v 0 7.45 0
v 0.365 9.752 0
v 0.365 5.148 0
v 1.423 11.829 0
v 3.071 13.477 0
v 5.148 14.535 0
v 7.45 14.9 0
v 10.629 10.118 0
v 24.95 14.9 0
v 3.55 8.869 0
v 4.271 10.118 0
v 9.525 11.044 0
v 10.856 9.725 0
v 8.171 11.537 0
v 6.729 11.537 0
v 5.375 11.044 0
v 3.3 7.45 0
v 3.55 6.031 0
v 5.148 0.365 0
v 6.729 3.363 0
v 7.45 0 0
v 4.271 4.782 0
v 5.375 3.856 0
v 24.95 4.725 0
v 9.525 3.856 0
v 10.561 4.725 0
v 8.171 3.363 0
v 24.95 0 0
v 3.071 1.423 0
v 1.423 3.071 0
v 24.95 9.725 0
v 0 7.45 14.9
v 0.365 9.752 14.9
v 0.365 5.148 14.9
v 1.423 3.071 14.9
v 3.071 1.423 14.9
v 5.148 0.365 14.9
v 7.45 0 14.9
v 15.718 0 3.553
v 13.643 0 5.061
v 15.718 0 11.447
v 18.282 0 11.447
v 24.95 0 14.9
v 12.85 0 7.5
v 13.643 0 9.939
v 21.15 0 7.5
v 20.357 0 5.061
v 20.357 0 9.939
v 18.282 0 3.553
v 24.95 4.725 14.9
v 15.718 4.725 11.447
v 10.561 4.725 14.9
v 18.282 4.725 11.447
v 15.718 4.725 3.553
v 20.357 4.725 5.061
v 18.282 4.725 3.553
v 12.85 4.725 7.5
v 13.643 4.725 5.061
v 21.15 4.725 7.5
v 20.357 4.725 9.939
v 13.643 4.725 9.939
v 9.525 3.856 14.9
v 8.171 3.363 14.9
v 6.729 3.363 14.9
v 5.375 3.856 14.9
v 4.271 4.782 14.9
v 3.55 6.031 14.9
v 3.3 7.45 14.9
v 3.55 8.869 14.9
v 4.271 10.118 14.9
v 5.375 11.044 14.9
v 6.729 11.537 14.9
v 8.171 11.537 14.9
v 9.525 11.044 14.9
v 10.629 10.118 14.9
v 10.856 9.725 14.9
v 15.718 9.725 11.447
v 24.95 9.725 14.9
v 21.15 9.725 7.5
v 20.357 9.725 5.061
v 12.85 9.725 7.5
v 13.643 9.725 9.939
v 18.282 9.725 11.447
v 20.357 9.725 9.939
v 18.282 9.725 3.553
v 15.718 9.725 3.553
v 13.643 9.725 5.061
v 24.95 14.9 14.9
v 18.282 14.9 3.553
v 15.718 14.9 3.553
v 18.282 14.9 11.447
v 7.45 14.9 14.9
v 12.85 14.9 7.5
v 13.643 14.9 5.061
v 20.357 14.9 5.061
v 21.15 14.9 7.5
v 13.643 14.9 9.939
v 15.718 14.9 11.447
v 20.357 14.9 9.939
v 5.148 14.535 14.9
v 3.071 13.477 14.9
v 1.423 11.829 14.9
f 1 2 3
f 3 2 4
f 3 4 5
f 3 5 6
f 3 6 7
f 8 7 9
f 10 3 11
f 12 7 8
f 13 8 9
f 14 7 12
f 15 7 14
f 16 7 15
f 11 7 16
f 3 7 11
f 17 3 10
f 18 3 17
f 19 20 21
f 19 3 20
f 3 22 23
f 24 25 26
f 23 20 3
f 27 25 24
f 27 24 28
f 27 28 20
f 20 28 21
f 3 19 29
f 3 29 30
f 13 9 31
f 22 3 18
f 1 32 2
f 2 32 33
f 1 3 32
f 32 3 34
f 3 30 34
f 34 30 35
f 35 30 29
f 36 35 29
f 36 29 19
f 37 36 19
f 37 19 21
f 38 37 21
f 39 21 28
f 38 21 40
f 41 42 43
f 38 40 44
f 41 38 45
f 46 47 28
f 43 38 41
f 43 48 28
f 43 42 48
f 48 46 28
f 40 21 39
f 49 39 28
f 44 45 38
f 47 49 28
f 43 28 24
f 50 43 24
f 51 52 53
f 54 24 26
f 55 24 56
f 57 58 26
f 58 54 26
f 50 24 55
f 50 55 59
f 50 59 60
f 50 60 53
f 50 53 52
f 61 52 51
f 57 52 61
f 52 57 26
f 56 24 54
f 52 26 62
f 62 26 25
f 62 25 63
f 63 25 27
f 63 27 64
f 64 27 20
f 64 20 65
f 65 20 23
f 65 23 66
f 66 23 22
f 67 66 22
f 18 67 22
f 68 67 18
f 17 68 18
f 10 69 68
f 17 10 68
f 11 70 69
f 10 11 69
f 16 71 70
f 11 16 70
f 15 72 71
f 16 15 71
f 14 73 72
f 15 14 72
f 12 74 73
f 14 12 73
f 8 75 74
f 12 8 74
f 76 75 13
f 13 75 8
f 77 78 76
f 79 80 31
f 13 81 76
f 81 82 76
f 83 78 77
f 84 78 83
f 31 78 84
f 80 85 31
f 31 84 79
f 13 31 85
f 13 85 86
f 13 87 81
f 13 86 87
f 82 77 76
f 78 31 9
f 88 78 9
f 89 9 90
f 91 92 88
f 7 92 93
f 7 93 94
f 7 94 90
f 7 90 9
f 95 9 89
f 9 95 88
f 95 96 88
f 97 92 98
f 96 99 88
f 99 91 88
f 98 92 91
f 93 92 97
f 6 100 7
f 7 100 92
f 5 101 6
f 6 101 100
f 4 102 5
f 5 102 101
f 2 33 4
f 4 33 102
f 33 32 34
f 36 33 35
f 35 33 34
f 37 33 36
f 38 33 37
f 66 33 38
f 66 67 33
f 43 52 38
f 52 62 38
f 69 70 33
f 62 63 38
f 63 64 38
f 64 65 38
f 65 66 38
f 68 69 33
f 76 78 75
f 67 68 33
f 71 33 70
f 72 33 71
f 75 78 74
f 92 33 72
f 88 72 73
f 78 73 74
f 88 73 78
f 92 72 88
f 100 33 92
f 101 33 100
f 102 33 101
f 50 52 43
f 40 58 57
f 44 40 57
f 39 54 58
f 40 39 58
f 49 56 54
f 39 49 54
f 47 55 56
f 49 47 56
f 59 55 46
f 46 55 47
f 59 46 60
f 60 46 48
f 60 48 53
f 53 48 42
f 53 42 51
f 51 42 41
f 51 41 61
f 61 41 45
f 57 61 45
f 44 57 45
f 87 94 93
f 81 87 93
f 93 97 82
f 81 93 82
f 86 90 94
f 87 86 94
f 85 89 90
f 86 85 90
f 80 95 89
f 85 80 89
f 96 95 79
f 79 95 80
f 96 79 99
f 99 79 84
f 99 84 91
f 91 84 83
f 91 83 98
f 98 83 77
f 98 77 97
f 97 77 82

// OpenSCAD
// file: configuration.scad
// PRUSA Mendel  
// Configuration file
// GNU GPL v2
// Josef Průša
// josefprusa@me.com
// prusadjs.cz
// http://www.reprap.org/wiki/Prusa_Mendel
// http://github.com/prusajr/PrusaMendel

// PLEASE SELECT ONE OF THE CONFIGURATIONS BELOW
// BY UN-COMMENTING IT

variant=0; //0 for metric
//variant=1; //1 for SAE
if(variant==0){
echo("variant: metric");
}else if(variant==1){
echo("variant: sae");
} else{
echo("WARNING: INVALID CONFIGURATION");
}


vars=[
//[m8_dia, m8_nut, m4_dia, m4_nut, m3_dia, m3_nut, bush_dia, mot_shaft, bush_rod, bush_outerdia, bush_length]
[8.3,16.4,4.3,9,3.3,7,11,5.3,8,16,11],//metric
[9,15.7,5.5,10.6,5.5,10.6,11.5,5.3,7.9375,16,11]//SAE
];

//BUSHING TYPE Can generate three versions
// 1 - regular old ones
// 2 - helical ones
// 3 - holders for brass or any other bought bushings
bushing_type = 2;

//Round corner diameter
round_corner_diameter = 8;

//X end parameters
axis_diameter_real = 4;
axis_diameter_larger = 4.2 ;
pressure_pad_height = 0.7;

//Thin wall size
layer_height = 0.4;
perimeter_width_over_thicknes = 1.6;
infill_widht_over_thickness = 1.55;
thin_wall = 2*(perimeter_width_over_thicknes*layer_height+infill_widht_over_thickness*layer_height);
if(thin_wall<2){
	echo("Check thin wall size, its below 2mm!");
}
echo(thin_wall);

//DO NOT TOUCH THIS SECTION!
m8_diameter = vars[variant][0];
m8_nut_diameter = vars[variant][1];
m4_diameter = vars[variant][2];
m4_nut_diameter = vars[variant][3];
m3_diameter = vars[variant][4];
m3_nut_diameter = vars[variant][5];
bushing_diameter = vars[variant][6];
motor_shaft=vars[variant][7];
bushing_rodsize = vars[variant][8];
bushing_outerDiameter = vars[variant][9];
bushing_lenght = vars[variant][10];


// MINI-HUXLEY VERSION (TODO, just place holder)
// include <configuration-huxley.scad>

// MEGA VERSION (TODO, just place holder)
// include <configuration-mega.scad>


// Some basic functions, probably should be somewhere else
module roundcorner(diameter){
	difference(){
		cube(size = [diameter,diameter,99], center = false);
		translate(v = [diameter, diameter, 0]) cylinder(h = 100, r=diameter, center=true);
	}
}
module polyhole(h, d) {
    n = max(round(2 * d),3);
    rotate([0,0,180])
        cylinder(h = h, r = (d / 2) / cos (180 / n), $fn = n);
}
// main file
// PRUSA Mendel  
// Bar clamp
// Used for joining 8mm rods
// GNU GPL v2
// Josef Průša
// josefprusa@me.com
// prusadjs.cz
// http://www.reprap.org/wiki/Prusa_Mendel
// http://github.com/prusajr/PrusaMendel

include <configuration.scad>

/**
 * @name Bar clamp
 * @category Printed
 * @using 2 m8nut
 * @using 2 m8washer
 */ 

module barclamp(){
outer_diameter = m8_diameter/2+3.3;

difference(){
	union(){
		
		translate([outer_diameter, outer_diameter, 0])cylinder(h =outer_diameter*2, r = outer_diameter, $fn = 20);
		translate([outer_diameter, 0, 0])cube([17.5,outer_diameter*2,outer_diameter*2]);
	}


	translate([9, outer_diameter/2+1, 0])cube([18,05,20]);
	translate([outer_diameter, outer_diameter, 0]) #cylinder(h =20, r = m8_diameter/2, $fn = 18);
	translate([17, 17, 7.5]) rotate([90, 0, 0]) #cylinder(h =20, r = m8_diameter/2, $fn = 10);
}
}
barclamp();
//translate([0,0,16]) barclamp();
